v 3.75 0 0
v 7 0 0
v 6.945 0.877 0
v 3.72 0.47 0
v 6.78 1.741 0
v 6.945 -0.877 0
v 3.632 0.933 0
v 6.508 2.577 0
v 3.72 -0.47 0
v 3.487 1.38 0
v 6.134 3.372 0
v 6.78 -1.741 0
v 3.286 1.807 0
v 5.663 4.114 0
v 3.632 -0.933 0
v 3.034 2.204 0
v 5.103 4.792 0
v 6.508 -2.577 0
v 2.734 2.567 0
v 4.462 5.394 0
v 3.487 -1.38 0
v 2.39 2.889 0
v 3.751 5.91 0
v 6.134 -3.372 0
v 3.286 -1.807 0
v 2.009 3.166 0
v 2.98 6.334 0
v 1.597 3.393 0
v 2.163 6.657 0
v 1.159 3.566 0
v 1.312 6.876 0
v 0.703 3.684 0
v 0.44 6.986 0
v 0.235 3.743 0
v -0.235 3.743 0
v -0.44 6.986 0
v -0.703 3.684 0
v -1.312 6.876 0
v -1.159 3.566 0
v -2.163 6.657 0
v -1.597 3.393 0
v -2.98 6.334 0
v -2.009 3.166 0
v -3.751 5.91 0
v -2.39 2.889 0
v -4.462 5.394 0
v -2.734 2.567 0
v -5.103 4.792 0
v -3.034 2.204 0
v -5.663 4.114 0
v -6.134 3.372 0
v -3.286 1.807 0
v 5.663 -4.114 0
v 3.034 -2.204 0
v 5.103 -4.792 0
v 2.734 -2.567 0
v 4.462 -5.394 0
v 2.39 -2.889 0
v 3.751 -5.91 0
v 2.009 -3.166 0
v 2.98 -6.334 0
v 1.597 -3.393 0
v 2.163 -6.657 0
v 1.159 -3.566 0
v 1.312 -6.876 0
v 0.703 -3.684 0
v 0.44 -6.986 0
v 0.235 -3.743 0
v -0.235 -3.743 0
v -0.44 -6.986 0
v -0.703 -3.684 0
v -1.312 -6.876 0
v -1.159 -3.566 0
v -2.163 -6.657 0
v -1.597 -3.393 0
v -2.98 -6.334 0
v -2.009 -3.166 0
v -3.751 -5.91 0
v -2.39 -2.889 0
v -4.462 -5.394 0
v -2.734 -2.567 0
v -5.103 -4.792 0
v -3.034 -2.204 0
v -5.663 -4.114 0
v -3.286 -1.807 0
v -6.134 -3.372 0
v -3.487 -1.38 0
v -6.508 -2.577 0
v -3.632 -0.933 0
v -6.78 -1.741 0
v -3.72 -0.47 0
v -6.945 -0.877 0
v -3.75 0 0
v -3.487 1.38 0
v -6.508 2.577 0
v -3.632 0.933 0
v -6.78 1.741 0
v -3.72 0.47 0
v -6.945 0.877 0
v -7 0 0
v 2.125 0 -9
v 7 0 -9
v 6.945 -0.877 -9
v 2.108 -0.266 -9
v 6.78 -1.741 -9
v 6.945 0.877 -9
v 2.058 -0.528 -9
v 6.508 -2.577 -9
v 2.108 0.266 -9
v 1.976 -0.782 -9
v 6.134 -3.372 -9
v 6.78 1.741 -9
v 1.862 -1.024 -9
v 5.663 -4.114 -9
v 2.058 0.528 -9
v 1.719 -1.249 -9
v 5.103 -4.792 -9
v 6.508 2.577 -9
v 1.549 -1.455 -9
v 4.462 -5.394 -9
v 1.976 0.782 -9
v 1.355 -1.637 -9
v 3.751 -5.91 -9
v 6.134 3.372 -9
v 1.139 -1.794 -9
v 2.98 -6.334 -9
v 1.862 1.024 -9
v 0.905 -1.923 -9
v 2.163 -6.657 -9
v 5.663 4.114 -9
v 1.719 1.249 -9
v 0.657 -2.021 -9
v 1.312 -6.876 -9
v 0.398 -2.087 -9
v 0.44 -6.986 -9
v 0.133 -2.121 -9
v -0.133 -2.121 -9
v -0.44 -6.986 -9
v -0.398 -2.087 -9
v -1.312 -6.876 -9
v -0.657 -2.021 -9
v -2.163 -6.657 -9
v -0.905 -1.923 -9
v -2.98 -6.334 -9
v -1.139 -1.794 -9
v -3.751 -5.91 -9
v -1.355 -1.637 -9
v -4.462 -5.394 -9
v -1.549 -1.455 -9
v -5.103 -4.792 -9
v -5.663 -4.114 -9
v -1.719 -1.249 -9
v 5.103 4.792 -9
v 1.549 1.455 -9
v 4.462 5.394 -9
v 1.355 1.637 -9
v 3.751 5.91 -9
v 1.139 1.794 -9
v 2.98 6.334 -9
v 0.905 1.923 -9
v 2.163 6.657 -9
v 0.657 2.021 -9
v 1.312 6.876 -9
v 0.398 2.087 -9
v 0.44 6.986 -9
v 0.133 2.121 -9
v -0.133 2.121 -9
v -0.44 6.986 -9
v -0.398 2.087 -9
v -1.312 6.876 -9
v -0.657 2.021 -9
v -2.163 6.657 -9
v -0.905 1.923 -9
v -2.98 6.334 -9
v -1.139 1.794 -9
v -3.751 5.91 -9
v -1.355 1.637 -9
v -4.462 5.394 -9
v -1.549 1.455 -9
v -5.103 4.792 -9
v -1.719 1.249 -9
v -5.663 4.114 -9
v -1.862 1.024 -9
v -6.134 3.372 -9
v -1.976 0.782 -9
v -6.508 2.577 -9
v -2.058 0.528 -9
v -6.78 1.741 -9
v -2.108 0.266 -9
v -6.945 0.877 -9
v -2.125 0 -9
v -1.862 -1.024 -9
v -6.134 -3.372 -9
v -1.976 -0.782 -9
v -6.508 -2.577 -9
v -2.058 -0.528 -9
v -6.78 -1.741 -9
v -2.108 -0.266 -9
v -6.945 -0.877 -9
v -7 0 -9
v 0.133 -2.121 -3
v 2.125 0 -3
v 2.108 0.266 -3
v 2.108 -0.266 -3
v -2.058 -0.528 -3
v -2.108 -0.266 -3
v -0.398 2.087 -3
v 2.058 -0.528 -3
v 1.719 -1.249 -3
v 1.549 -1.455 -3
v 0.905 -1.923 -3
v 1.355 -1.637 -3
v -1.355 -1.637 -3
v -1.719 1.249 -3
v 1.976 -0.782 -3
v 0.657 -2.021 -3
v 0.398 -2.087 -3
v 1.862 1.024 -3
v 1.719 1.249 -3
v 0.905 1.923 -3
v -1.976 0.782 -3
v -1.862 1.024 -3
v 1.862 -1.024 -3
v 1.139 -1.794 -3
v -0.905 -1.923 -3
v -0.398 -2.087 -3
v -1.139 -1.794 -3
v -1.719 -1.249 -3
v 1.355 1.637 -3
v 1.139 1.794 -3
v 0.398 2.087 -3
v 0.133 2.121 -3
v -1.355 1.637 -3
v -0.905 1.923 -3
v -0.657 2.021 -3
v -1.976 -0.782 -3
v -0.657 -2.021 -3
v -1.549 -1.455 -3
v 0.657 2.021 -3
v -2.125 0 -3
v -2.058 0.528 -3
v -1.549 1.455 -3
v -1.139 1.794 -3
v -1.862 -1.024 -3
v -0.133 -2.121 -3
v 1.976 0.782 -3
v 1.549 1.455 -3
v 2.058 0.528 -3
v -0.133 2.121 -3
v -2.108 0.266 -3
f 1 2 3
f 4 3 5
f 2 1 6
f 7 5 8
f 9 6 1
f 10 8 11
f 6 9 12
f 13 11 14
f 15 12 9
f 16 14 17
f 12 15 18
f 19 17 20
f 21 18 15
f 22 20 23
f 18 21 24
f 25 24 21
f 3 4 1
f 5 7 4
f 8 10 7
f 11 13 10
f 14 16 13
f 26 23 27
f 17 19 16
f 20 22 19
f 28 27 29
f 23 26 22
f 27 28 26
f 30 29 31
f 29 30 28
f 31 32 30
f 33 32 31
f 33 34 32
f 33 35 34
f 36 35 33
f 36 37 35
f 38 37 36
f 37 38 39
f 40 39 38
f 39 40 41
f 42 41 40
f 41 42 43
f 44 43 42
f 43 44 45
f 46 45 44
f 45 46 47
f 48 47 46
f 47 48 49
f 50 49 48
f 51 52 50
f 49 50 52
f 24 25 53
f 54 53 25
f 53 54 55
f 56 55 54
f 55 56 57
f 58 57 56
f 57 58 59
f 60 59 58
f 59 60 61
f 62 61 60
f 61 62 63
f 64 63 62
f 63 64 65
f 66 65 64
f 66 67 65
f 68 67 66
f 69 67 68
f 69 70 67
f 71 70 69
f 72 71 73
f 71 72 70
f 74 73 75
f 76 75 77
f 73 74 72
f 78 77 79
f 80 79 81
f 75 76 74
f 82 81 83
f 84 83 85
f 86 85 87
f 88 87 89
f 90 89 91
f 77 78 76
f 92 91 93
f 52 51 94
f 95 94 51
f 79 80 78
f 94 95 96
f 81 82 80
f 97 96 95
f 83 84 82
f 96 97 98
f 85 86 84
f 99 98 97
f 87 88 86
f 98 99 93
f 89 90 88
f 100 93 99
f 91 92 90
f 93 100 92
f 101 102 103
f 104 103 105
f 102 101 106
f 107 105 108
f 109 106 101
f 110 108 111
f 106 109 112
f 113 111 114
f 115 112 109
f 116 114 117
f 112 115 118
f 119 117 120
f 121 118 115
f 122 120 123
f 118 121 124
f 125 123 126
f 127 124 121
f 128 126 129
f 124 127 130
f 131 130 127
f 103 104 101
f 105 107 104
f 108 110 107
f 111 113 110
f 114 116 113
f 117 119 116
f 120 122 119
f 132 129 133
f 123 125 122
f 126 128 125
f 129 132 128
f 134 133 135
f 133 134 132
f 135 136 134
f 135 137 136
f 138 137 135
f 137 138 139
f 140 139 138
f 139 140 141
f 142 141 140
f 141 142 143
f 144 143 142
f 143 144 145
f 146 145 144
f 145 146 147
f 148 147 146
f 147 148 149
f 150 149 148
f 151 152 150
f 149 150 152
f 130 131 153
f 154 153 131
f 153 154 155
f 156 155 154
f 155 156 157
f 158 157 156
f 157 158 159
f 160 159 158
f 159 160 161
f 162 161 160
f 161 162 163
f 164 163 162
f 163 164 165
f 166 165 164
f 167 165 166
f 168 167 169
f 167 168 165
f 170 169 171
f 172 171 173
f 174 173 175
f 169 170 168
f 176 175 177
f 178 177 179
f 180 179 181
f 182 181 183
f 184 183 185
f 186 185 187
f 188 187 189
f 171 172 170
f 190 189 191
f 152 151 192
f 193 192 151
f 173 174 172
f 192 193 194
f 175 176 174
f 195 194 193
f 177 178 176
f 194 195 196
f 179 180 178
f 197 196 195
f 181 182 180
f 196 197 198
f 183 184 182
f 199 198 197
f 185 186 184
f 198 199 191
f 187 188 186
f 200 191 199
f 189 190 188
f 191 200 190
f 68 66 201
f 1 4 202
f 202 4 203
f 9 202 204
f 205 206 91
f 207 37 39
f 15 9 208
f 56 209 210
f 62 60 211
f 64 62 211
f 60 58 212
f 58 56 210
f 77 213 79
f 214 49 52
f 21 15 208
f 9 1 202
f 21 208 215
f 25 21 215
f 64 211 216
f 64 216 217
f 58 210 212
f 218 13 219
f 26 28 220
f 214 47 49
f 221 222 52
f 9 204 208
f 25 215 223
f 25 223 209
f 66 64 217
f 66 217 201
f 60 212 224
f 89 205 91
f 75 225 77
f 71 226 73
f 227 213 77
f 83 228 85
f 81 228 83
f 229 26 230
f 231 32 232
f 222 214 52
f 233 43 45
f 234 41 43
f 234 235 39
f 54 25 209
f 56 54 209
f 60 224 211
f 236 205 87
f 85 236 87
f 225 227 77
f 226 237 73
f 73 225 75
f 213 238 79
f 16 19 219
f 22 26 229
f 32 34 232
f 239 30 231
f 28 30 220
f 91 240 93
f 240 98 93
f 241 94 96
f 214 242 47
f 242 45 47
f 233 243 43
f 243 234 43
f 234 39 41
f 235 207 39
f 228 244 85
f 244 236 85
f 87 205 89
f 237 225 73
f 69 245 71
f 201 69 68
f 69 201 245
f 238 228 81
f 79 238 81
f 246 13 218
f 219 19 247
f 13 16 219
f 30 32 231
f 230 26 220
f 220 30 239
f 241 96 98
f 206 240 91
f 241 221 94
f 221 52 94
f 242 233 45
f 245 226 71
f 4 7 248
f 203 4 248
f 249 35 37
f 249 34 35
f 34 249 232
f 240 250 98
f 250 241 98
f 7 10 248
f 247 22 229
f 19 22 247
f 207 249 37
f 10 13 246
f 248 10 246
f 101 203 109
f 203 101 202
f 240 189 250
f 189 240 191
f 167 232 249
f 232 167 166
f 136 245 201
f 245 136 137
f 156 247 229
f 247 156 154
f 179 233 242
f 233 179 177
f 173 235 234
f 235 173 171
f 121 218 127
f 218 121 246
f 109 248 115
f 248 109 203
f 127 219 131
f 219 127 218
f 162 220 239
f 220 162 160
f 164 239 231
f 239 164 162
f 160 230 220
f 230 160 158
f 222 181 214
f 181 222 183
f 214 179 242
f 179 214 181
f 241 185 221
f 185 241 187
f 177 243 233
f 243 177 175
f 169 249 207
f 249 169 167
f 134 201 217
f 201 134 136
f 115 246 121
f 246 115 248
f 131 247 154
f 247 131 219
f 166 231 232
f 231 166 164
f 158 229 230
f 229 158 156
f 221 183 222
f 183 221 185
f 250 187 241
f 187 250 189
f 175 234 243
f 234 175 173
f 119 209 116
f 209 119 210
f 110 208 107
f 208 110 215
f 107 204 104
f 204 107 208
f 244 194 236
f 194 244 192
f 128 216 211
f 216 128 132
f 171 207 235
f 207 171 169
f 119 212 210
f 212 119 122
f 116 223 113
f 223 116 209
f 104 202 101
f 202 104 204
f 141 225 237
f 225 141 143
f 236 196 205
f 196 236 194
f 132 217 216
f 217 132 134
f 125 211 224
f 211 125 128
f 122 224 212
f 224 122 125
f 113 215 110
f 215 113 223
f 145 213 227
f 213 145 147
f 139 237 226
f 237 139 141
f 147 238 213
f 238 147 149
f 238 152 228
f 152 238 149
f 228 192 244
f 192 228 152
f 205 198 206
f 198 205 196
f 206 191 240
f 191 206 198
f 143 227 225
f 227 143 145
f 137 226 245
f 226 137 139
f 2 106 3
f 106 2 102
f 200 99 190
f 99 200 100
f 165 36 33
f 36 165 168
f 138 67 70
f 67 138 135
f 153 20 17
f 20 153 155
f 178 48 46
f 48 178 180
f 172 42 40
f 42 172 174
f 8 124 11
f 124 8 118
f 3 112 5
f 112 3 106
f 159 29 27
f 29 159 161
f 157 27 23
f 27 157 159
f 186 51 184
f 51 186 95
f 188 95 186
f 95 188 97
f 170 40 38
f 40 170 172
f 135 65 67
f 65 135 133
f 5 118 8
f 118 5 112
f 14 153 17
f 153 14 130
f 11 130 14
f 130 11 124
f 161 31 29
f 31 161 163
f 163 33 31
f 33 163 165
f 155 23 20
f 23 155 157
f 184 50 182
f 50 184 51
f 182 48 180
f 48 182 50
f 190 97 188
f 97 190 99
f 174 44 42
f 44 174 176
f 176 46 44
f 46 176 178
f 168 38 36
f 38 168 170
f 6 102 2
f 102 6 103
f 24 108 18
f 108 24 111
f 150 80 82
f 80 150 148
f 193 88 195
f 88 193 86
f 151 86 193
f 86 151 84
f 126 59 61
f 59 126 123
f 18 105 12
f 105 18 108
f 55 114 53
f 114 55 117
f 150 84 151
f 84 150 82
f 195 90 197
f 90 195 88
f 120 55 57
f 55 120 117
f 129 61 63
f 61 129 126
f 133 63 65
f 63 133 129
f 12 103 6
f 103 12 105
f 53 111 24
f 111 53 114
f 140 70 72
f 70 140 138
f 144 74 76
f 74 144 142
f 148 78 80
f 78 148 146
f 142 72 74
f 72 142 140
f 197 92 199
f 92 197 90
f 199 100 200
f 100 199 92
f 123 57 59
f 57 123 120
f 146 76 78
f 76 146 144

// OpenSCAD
$fn = 50;


difference() {
	union() {
		translate(v = [0, 0, -9.0000000000]) {
			cylinder(h = 9, r = 7.0000000000);
		}
		cylinder(h = 0, r = 16.0000000000);
	}
	union() {
		translate(v = [0, 0, 0]) {
			rotate(a = [0, 0, 0]) {
				difference() {
					union() {
						#translate(v = [0, 0, -9.0000000000]) {
							cylinder(h = 9, r = 2.0000000000);
						}
						#translate(v = [0, 0, -3]) {
							cylinder(h = 3, r = 7.0000000000, r1 = 2.1250000000, r2 = 3.7500000000);
						}
						#translate(v = [0, 0, -9.0000000000]) {
							cylinder(h = 9, r = 2.1250000000);
						}
						#translate(v = [0, 0, -9.0000000000]) {
							cylinder(h = 9, r = 2.0000000000);
						}
					}
					union();
				}
			}
		}
	}
}
